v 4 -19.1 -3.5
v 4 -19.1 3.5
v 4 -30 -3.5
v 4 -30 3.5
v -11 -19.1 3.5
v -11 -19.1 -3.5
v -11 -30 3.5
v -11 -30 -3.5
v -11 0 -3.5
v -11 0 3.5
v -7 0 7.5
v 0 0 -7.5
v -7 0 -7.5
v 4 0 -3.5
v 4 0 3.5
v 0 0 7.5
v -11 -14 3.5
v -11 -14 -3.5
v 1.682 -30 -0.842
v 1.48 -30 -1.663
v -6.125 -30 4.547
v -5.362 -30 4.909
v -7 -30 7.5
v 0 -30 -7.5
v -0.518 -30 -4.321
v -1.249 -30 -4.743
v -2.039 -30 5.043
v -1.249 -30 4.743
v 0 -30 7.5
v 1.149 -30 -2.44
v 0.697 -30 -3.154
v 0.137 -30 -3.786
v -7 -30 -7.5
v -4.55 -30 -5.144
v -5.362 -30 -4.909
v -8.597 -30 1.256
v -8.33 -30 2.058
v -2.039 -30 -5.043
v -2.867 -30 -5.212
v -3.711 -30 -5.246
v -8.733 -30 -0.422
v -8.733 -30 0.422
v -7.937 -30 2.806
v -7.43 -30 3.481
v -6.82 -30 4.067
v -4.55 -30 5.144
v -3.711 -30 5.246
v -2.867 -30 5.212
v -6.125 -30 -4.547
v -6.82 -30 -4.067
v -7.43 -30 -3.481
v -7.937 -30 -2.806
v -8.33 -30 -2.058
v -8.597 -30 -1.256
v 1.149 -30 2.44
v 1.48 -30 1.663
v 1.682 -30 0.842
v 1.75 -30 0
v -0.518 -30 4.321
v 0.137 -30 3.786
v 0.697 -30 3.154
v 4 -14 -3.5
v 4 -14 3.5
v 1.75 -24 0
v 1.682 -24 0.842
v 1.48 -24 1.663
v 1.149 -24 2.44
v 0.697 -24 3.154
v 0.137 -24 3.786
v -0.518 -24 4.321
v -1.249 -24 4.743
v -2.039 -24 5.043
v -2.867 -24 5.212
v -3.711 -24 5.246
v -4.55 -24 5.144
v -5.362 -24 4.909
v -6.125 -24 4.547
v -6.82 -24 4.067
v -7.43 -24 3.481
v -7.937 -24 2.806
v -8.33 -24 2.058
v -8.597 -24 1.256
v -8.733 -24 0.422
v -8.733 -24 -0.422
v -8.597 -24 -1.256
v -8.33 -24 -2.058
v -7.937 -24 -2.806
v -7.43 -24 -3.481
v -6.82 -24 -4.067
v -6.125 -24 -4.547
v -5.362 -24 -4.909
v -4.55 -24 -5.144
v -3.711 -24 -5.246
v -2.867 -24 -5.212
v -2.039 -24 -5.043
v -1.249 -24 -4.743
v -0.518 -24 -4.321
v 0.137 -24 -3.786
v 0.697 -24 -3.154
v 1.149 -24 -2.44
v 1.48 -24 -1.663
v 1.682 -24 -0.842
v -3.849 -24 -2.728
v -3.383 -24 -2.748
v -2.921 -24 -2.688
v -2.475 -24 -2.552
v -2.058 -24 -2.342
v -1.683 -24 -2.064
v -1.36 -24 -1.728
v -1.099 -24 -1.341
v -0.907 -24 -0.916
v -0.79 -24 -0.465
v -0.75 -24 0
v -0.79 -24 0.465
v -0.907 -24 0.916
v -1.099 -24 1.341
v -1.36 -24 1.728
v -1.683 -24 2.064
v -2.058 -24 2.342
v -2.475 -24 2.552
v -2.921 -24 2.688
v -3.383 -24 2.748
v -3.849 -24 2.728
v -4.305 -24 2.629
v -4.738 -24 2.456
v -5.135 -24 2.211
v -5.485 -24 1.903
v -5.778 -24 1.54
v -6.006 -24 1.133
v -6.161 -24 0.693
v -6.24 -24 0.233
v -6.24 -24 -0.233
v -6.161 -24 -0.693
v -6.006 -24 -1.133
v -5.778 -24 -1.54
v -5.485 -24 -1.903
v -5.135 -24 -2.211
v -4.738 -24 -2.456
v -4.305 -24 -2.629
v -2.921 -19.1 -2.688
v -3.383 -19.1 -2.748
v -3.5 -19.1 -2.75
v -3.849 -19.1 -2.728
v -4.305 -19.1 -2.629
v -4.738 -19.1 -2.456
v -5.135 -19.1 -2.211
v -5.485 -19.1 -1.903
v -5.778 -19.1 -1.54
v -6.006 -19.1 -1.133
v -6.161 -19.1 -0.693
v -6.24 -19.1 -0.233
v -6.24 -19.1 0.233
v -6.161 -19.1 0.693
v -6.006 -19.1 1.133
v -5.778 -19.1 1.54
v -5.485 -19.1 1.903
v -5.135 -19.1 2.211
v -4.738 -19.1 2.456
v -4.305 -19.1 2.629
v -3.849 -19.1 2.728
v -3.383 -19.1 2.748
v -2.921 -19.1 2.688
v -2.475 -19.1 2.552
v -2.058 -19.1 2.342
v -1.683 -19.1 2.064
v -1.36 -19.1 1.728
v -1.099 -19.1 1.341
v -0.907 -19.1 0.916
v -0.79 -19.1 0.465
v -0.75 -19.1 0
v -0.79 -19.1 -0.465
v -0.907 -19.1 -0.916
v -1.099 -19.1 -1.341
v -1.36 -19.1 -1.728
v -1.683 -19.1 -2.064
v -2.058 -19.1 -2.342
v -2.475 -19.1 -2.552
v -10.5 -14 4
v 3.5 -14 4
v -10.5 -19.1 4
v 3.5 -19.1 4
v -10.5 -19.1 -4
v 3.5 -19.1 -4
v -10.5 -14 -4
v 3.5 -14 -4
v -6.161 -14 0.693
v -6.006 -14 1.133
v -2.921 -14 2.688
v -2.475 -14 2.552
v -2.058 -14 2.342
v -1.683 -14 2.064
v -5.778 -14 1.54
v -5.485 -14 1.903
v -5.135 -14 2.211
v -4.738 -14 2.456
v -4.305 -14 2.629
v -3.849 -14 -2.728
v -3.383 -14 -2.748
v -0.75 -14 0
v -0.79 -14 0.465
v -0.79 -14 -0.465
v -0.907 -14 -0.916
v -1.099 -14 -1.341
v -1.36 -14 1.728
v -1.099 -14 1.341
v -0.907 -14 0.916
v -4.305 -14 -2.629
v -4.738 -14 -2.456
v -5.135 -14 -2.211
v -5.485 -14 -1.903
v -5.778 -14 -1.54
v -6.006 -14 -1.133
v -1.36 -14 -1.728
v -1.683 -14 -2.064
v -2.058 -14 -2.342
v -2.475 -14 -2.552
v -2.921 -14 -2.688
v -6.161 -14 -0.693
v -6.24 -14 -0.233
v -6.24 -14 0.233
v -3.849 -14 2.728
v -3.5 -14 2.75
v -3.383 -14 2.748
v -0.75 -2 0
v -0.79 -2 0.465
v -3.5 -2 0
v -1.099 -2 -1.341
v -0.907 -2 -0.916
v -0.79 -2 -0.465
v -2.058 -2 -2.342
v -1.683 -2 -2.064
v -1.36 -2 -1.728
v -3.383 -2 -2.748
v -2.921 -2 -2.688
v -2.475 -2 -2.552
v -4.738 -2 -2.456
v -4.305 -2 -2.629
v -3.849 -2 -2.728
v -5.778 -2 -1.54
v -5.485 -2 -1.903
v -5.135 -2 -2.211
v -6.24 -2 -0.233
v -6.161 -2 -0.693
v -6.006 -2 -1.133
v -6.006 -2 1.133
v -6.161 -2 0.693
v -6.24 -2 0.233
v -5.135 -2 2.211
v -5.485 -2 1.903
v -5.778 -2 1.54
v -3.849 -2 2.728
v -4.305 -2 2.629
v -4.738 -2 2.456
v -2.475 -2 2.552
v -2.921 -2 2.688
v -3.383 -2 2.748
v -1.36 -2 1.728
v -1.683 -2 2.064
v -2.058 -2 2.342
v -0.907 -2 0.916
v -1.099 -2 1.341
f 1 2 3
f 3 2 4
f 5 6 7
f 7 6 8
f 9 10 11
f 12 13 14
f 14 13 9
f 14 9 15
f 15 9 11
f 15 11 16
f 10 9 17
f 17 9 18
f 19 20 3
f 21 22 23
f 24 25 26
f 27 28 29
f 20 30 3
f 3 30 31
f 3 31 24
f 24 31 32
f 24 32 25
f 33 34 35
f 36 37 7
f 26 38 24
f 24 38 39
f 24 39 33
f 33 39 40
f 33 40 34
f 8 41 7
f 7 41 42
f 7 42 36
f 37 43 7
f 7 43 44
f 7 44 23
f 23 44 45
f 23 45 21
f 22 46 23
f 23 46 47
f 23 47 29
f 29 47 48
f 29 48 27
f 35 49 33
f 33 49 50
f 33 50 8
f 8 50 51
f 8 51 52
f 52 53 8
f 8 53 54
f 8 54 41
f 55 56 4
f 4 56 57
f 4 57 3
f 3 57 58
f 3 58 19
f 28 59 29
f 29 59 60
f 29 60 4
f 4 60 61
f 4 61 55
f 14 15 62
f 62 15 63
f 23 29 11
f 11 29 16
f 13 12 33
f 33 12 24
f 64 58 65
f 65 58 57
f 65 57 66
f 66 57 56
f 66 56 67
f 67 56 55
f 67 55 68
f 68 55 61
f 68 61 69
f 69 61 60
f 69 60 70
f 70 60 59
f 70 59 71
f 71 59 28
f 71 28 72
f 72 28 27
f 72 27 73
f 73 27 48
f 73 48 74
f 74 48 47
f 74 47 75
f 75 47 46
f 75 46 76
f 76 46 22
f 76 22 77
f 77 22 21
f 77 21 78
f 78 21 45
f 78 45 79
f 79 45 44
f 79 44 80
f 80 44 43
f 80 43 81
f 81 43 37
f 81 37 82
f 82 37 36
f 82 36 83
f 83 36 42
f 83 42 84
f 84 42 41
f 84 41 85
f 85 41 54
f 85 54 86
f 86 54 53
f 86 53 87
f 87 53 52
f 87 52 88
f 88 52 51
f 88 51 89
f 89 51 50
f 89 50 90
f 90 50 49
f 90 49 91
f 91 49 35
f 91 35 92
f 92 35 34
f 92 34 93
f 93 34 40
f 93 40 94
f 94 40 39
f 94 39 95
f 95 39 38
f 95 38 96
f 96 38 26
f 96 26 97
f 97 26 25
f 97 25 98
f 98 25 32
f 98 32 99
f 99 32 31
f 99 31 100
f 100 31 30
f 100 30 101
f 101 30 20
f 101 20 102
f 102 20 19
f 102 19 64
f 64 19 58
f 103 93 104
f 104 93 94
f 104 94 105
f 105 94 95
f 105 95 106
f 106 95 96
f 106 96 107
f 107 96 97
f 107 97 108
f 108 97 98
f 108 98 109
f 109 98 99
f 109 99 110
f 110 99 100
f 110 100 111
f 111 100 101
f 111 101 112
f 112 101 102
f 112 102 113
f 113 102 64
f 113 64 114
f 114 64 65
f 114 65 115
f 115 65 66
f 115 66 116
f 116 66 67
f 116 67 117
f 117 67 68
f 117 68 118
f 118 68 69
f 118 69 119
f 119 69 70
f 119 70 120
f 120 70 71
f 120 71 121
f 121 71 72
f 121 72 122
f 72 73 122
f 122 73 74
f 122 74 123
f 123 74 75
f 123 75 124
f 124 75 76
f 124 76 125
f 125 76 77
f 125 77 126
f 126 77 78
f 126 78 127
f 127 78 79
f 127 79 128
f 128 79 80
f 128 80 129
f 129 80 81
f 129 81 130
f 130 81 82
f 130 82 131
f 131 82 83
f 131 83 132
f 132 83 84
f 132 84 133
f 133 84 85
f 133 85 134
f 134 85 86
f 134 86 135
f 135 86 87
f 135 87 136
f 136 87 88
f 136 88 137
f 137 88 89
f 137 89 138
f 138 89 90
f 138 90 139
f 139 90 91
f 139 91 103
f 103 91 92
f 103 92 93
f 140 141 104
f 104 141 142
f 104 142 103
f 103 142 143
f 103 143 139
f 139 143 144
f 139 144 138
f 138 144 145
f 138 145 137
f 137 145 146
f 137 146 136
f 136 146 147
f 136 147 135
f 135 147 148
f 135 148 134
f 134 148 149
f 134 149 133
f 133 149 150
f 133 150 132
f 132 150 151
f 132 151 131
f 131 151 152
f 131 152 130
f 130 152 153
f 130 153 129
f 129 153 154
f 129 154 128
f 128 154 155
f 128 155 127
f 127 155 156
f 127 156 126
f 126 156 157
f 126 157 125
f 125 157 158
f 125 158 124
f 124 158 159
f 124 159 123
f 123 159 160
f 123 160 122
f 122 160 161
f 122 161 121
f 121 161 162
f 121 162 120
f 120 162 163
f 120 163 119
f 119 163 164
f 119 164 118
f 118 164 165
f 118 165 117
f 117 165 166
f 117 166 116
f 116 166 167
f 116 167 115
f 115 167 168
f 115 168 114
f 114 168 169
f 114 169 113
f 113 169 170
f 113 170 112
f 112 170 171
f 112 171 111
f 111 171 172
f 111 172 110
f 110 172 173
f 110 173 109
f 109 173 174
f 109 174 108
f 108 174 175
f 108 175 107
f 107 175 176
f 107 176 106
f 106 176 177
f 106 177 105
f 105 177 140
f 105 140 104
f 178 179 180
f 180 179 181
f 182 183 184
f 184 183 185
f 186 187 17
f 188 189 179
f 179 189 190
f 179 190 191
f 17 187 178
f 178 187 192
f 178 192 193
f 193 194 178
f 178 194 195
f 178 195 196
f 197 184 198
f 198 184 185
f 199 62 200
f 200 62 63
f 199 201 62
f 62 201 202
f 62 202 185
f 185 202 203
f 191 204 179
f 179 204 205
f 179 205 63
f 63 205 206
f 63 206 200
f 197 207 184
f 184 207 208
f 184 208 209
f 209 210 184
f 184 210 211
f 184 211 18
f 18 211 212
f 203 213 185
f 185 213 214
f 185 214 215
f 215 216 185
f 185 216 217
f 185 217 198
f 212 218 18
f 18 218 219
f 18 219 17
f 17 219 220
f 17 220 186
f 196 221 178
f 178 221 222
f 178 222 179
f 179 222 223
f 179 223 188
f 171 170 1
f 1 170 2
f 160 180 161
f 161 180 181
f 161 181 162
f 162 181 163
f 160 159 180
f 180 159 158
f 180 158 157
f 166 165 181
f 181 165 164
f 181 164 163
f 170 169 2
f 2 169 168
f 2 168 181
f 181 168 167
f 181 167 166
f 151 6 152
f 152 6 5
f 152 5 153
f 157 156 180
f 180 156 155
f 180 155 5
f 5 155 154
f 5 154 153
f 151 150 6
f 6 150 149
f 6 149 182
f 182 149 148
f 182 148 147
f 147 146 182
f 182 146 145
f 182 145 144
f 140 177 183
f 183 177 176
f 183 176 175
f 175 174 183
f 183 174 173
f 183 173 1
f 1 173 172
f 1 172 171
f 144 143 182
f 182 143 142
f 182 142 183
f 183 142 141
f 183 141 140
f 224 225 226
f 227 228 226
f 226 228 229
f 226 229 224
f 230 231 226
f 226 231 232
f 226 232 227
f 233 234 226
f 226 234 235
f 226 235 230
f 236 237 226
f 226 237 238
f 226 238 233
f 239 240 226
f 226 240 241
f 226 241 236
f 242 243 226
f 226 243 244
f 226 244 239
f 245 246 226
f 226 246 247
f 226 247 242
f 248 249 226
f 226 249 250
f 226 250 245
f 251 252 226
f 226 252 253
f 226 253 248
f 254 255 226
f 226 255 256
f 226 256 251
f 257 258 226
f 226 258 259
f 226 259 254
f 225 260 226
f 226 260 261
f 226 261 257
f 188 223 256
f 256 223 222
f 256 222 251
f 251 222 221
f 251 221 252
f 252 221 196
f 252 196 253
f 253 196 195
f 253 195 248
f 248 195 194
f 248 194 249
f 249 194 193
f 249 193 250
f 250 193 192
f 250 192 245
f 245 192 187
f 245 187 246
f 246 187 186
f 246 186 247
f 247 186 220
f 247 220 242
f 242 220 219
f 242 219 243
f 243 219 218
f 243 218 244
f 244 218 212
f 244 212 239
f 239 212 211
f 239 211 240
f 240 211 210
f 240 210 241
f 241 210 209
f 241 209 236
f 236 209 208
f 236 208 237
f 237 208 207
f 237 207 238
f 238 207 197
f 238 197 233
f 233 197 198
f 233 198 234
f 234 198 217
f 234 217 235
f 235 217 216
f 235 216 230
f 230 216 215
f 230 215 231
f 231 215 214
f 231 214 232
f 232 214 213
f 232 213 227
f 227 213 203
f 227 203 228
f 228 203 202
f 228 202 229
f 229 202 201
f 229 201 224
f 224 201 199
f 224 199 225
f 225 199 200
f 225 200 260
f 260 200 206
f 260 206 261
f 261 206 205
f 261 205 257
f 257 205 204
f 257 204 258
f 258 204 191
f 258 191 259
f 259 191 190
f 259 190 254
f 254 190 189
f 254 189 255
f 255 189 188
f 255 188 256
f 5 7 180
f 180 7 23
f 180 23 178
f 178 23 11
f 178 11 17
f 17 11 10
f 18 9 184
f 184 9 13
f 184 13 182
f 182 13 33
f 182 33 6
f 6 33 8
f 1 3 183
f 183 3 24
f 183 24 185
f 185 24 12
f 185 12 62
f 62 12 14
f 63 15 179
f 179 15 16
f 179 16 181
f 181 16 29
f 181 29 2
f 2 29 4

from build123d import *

# Parameters (mm, degrees)
SKETCH1_W           = 15
SKETCH1_H           = 30
BOSS_EXTRUDE1_DEPTH = 7.5
SKETCH2_R           = 5.25
CUT_EXTRUDE1_DEPTH  = 6
SKETCH4_R           = 2.75
CUT_EXTRUDE3_DEPTH  = 28
CUT_EXTRUDE4_REACH  = 36.369
SKETCH5_W           = 8
SKETCH5_H           = 5.1
CHAMFER3_SIZE       = 4


with BuildPart() as part:
    # Sketch1 → Boss-Extrude1 (new, symmetric)
    with BuildSketch(Plane.XY):
        with Locations((-3.5, -15)):
            Rectangle(SKETCH1_W, SKETCH1_H)
    extrude(amount=BOSS_EXTRUDE1_DEPTH, both=True)

    # Sketch2 → Cut-Extrude1 (cut)
    with BuildSketch(Plane.XZ.offset(30)):
        with Locations((-3.5, 0)):
            Circle(SKETCH2_R)
    extrude(amount=-CUT_EXTRUDE1_DEPTH, mode=Mode.SUBTRACT)

    # Sketch4 → Cut-Extrude3 (cut)
    with BuildSketch(Plane.XZ.offset(30)):
        with Locations((-3.5, 0)):
            Circle(SKETCH4_R)
    extrude(amount=-CUT_EXTRUDE3_DEPTH, mode=Mode.SUBTRACT)

    # Sketch5 → Cut-Extrude4 (cut, up to next)
    with BuildSketch(Plane(origin=(4, 0, 0), x_dir=(0, 0, -1), z_dir=(1, 0, 0)), mode=Mode.PRIVATE) as cut_extrude4_sk1:
        with Locations((0, -16.55)):
            Rectangle(SKETCH5_W, SKETCH5_H)
    cut_extrude4_tool1 = extrude(cut_extrude4_sk1.sketch, amount=-CUT_EXTRUDE4_REACH, mode=Mode.PRIVATE) & part.part
    add(cut_extrude4_tool1.solids().sort_by_distance((4, -16.55, 0))[0], mode=Mode.SUBTRACT)

    # Chamfer3
    # the kernel refuses this chamfer: 4 mm, written as the material it takes off along each edge
    with BuildSketch(Plane(origin=(-11, -40.286731952, 7.5), x_dir=(0.9996219169112968, 0, 0.027495876610586275), z_dir=(0, 1, 0)), Plane(origin=(4, 10.286731952, -7.5), x_dir=(0.02749587661058638, 0, 0.9996219169112968), z_dir=(0, -1, 0))) as chamfer3_piece_1:
        Polygon((CHAMFER3_SIZE * 0.999621916911, CHAMFER3_SIZE * 0.0274958766106), (-CHAMFER3_SIZE * 0.0274958766106, CHAMFER3_SIZE * 0.999621916911), (0, 0), align=None)
    extrude(amount=50.573463904, mode=Mode.SUBTRACT)
    with BuildSketch(Plane(origin=(-11, -40.286731952, -7.5), x_dir=(0.9996219169112968, 0, -0.027495876610586275), z_dir=(0, 1, 0)), Plane(origin=(4, 10.286731952, 7.5), x_dir=(0.02749587661058638, 0, -0.9996219169112968), z_dir=(0, -1, 0))) as chamfer3_piece_2:
        Polygon((CHAMFER3_SIZE * 0.999621916911, -CHAMFER3_SIZE * 0.0274958766106), (-CHAMFER3_SIZE * 0.0274958766106, -CHAMFER3_SIZE * 0.999621916911), (0, 0), align=None)
    extrude(amount=50.573463904, mode=Mode.SUBTRACT)


solid = part.part
